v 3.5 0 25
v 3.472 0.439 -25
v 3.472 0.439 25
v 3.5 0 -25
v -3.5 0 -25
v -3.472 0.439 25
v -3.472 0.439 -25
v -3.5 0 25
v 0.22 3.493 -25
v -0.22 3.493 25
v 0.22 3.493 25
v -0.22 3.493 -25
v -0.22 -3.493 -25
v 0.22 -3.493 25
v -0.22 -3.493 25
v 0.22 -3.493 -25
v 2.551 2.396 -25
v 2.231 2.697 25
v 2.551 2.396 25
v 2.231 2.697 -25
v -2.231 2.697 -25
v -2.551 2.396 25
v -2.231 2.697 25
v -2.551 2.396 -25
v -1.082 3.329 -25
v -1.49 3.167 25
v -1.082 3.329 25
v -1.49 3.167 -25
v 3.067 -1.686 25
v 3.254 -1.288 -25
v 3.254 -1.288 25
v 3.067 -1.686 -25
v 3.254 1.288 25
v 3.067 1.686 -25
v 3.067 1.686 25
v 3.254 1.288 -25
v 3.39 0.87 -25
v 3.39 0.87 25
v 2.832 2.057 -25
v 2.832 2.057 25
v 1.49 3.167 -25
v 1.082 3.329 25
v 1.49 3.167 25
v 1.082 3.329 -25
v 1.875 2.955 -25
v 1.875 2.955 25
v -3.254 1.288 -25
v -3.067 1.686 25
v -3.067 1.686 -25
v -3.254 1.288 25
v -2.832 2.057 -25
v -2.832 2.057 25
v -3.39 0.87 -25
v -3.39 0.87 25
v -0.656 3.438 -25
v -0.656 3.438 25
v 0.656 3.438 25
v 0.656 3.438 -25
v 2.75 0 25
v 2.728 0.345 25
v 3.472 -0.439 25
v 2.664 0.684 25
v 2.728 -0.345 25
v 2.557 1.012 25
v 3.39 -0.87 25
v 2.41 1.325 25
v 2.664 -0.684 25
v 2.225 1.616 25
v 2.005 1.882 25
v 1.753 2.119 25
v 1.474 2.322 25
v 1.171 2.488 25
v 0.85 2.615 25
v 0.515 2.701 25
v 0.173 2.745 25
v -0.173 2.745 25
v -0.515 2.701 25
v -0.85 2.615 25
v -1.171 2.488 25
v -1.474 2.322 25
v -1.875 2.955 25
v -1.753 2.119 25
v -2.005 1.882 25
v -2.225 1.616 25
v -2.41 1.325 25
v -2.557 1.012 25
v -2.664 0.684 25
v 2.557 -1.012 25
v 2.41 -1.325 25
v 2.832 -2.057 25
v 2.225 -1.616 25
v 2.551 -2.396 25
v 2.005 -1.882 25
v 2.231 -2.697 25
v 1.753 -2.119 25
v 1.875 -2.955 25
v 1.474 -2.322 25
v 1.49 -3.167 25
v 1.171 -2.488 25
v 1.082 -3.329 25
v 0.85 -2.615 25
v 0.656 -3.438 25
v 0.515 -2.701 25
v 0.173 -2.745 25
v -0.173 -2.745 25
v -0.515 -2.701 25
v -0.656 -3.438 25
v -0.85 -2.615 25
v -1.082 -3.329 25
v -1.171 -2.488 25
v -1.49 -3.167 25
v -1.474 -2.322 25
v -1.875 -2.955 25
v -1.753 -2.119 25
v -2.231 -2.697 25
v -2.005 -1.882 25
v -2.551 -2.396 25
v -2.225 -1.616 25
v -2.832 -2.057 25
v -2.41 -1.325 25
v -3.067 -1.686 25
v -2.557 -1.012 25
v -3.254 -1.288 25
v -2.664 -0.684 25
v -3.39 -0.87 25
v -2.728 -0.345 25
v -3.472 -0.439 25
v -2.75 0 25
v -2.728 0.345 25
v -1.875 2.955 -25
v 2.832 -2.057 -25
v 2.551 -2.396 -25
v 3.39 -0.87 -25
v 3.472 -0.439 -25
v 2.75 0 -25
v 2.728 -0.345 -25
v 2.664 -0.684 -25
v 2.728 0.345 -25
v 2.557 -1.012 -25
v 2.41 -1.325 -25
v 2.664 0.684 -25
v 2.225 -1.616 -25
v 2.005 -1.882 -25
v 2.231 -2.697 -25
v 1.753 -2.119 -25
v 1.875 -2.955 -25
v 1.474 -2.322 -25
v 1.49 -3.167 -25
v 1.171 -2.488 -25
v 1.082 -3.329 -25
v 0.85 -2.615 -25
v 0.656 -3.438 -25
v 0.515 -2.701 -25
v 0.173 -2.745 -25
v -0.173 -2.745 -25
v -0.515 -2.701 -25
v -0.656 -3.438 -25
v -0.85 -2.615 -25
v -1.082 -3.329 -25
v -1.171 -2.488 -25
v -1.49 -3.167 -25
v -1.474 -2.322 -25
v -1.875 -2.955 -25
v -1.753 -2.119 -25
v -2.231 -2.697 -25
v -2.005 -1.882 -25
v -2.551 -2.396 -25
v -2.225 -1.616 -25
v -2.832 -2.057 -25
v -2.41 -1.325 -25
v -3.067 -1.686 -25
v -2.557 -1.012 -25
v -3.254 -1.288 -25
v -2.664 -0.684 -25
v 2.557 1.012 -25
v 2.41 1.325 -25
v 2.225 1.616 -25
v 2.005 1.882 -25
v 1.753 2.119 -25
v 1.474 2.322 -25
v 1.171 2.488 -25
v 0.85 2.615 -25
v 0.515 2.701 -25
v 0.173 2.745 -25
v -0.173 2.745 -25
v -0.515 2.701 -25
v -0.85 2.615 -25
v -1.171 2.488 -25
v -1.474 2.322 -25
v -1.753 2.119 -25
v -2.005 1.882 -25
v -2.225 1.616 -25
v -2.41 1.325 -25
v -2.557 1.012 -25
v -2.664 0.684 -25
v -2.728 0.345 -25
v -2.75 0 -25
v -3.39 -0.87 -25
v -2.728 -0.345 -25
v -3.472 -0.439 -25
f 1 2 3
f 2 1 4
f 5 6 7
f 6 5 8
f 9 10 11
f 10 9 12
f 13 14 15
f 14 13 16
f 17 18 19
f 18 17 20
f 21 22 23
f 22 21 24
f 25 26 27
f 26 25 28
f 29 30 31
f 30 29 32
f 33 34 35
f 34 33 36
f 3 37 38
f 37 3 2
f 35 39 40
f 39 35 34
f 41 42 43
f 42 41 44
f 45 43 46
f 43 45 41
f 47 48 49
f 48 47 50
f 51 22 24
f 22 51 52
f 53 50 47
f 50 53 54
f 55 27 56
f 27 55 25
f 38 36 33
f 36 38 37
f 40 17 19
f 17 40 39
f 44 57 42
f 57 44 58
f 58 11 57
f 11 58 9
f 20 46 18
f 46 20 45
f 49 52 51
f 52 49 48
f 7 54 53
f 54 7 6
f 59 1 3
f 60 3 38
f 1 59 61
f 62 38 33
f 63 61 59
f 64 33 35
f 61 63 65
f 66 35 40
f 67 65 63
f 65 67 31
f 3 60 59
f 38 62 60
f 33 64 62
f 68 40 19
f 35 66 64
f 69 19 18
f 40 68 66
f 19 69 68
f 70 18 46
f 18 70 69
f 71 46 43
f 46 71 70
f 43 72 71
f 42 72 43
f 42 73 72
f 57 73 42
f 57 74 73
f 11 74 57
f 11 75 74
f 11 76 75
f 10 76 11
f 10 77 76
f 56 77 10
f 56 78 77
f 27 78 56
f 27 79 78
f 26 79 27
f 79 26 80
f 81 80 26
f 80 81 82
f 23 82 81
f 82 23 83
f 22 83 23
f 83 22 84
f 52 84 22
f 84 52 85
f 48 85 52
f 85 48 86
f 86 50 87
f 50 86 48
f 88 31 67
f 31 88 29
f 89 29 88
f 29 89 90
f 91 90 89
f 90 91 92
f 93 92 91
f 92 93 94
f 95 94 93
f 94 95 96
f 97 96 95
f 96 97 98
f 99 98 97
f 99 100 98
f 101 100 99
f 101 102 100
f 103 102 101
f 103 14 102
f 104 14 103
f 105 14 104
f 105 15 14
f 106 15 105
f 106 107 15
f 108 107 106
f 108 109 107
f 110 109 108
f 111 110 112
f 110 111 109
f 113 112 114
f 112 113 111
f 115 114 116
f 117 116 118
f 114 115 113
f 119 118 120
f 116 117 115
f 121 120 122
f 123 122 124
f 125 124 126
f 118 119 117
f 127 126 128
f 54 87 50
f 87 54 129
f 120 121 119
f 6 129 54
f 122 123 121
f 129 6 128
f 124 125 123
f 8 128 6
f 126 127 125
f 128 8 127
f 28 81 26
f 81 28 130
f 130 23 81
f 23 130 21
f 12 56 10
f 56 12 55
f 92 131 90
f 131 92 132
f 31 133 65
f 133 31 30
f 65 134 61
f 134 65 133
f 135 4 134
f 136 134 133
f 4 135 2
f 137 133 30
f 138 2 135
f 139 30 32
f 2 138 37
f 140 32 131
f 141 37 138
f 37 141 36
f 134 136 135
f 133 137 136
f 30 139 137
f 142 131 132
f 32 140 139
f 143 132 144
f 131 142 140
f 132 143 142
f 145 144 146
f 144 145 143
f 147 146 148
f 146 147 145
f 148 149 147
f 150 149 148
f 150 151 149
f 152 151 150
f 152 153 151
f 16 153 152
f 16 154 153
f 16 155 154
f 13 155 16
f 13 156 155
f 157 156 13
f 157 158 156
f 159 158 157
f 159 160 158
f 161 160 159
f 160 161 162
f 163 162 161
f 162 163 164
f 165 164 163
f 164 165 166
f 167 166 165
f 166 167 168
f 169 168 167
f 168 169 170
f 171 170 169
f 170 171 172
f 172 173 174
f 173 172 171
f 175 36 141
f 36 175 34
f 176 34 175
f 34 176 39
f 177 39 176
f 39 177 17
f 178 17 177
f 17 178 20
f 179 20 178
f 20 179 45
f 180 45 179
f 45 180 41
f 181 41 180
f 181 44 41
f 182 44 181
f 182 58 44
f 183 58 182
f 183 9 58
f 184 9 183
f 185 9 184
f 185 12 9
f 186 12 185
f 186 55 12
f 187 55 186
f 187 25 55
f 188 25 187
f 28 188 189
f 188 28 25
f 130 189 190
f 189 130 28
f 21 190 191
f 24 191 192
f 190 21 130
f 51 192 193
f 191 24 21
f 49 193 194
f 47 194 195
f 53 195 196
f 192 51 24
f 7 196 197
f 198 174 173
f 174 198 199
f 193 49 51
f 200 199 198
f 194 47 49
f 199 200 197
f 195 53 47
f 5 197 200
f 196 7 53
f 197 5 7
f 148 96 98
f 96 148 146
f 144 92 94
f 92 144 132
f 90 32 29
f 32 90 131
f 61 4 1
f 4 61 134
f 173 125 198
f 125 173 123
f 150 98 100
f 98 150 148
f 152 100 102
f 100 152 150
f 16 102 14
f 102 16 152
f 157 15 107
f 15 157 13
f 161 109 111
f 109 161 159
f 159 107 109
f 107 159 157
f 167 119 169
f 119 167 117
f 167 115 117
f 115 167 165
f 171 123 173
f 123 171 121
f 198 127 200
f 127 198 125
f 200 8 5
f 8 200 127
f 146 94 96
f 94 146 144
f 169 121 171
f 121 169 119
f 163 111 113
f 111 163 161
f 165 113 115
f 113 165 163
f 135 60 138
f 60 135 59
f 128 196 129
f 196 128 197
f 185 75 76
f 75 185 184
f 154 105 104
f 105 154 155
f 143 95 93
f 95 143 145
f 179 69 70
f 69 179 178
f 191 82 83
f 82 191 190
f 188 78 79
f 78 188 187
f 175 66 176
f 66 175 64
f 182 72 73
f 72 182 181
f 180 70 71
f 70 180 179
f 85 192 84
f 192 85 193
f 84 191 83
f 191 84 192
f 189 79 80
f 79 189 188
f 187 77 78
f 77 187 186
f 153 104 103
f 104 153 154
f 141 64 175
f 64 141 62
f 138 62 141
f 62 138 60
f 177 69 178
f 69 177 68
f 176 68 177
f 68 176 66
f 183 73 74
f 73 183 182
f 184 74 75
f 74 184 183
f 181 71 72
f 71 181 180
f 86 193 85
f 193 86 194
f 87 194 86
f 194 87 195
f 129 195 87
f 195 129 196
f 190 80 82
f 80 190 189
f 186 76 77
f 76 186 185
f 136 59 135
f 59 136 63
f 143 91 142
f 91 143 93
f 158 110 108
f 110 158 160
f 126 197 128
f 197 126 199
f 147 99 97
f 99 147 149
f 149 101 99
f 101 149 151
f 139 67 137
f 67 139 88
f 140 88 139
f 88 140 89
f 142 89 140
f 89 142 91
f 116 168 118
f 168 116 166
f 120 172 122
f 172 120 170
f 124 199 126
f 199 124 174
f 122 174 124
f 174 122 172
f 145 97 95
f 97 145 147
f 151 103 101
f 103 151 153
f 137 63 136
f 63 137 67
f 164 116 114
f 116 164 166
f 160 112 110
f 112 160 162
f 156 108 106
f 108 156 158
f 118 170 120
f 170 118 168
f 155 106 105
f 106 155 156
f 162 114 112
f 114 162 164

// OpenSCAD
$fn = 50;


difference() {
	union() {
		translate(v = [0, 0, -25.0000000000]) {
			cylinder(h = 50, r = 3.5000000000);
		}
	}
	union() {
		translate(v = [0, 0, -100.0000000000]) {
			cylinder(h = 200, r = 2.7500000000);
		}
	}
}
